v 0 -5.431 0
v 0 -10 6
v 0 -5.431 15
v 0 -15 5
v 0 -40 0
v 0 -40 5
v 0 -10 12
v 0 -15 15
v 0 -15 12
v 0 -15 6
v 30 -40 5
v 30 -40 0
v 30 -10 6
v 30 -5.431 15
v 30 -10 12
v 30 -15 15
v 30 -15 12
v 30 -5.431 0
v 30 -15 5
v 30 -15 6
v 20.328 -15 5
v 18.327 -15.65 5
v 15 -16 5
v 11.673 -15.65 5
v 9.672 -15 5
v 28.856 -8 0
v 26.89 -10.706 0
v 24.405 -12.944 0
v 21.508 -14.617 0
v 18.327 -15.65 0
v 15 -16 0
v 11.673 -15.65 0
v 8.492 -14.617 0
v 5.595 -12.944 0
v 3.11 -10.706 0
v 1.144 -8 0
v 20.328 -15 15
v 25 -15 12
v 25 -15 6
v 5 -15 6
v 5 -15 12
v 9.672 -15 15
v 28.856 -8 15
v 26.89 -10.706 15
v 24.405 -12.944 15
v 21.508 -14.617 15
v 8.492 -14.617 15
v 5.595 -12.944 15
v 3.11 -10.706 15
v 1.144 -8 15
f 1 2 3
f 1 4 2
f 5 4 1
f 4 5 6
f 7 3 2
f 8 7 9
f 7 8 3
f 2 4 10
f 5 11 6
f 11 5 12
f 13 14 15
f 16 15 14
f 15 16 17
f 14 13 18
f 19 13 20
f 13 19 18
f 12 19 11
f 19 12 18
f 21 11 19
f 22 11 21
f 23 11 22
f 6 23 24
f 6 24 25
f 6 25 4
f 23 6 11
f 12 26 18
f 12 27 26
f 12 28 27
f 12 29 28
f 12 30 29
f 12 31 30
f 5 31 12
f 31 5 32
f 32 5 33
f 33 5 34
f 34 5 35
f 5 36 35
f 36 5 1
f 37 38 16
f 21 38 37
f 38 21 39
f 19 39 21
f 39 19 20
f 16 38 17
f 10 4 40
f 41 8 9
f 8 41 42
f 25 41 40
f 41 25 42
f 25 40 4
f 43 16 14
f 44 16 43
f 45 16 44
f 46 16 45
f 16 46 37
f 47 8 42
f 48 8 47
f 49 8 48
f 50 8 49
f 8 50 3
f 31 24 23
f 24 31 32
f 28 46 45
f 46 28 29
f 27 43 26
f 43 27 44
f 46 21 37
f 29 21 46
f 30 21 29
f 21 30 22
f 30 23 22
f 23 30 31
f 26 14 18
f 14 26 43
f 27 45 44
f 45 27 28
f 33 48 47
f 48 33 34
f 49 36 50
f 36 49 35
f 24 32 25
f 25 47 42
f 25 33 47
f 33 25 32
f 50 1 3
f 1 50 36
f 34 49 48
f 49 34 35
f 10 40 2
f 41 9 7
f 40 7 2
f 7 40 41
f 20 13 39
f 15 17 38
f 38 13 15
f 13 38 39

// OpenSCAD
rotate([90, 0, 0]) {
    difference() {
    union() {
        cube([30, 5, 40]);
        translate([0, 5, 0]) {
            cube([30, 10, 15]);
        }
    }
    translate([15, 25, 0]) rotate([90, 90, 0]) cylinder(h=50, r=16);
    
  translate([0, 6, 10])
    rotate([0, -45, 0]) {
        cube([30, 6, 10]);
    }  
   
   translate([20, 6, 20])
    rotate([0, 45, 0]) {
        cube([30, 6, 10]);
    }   
}
}
